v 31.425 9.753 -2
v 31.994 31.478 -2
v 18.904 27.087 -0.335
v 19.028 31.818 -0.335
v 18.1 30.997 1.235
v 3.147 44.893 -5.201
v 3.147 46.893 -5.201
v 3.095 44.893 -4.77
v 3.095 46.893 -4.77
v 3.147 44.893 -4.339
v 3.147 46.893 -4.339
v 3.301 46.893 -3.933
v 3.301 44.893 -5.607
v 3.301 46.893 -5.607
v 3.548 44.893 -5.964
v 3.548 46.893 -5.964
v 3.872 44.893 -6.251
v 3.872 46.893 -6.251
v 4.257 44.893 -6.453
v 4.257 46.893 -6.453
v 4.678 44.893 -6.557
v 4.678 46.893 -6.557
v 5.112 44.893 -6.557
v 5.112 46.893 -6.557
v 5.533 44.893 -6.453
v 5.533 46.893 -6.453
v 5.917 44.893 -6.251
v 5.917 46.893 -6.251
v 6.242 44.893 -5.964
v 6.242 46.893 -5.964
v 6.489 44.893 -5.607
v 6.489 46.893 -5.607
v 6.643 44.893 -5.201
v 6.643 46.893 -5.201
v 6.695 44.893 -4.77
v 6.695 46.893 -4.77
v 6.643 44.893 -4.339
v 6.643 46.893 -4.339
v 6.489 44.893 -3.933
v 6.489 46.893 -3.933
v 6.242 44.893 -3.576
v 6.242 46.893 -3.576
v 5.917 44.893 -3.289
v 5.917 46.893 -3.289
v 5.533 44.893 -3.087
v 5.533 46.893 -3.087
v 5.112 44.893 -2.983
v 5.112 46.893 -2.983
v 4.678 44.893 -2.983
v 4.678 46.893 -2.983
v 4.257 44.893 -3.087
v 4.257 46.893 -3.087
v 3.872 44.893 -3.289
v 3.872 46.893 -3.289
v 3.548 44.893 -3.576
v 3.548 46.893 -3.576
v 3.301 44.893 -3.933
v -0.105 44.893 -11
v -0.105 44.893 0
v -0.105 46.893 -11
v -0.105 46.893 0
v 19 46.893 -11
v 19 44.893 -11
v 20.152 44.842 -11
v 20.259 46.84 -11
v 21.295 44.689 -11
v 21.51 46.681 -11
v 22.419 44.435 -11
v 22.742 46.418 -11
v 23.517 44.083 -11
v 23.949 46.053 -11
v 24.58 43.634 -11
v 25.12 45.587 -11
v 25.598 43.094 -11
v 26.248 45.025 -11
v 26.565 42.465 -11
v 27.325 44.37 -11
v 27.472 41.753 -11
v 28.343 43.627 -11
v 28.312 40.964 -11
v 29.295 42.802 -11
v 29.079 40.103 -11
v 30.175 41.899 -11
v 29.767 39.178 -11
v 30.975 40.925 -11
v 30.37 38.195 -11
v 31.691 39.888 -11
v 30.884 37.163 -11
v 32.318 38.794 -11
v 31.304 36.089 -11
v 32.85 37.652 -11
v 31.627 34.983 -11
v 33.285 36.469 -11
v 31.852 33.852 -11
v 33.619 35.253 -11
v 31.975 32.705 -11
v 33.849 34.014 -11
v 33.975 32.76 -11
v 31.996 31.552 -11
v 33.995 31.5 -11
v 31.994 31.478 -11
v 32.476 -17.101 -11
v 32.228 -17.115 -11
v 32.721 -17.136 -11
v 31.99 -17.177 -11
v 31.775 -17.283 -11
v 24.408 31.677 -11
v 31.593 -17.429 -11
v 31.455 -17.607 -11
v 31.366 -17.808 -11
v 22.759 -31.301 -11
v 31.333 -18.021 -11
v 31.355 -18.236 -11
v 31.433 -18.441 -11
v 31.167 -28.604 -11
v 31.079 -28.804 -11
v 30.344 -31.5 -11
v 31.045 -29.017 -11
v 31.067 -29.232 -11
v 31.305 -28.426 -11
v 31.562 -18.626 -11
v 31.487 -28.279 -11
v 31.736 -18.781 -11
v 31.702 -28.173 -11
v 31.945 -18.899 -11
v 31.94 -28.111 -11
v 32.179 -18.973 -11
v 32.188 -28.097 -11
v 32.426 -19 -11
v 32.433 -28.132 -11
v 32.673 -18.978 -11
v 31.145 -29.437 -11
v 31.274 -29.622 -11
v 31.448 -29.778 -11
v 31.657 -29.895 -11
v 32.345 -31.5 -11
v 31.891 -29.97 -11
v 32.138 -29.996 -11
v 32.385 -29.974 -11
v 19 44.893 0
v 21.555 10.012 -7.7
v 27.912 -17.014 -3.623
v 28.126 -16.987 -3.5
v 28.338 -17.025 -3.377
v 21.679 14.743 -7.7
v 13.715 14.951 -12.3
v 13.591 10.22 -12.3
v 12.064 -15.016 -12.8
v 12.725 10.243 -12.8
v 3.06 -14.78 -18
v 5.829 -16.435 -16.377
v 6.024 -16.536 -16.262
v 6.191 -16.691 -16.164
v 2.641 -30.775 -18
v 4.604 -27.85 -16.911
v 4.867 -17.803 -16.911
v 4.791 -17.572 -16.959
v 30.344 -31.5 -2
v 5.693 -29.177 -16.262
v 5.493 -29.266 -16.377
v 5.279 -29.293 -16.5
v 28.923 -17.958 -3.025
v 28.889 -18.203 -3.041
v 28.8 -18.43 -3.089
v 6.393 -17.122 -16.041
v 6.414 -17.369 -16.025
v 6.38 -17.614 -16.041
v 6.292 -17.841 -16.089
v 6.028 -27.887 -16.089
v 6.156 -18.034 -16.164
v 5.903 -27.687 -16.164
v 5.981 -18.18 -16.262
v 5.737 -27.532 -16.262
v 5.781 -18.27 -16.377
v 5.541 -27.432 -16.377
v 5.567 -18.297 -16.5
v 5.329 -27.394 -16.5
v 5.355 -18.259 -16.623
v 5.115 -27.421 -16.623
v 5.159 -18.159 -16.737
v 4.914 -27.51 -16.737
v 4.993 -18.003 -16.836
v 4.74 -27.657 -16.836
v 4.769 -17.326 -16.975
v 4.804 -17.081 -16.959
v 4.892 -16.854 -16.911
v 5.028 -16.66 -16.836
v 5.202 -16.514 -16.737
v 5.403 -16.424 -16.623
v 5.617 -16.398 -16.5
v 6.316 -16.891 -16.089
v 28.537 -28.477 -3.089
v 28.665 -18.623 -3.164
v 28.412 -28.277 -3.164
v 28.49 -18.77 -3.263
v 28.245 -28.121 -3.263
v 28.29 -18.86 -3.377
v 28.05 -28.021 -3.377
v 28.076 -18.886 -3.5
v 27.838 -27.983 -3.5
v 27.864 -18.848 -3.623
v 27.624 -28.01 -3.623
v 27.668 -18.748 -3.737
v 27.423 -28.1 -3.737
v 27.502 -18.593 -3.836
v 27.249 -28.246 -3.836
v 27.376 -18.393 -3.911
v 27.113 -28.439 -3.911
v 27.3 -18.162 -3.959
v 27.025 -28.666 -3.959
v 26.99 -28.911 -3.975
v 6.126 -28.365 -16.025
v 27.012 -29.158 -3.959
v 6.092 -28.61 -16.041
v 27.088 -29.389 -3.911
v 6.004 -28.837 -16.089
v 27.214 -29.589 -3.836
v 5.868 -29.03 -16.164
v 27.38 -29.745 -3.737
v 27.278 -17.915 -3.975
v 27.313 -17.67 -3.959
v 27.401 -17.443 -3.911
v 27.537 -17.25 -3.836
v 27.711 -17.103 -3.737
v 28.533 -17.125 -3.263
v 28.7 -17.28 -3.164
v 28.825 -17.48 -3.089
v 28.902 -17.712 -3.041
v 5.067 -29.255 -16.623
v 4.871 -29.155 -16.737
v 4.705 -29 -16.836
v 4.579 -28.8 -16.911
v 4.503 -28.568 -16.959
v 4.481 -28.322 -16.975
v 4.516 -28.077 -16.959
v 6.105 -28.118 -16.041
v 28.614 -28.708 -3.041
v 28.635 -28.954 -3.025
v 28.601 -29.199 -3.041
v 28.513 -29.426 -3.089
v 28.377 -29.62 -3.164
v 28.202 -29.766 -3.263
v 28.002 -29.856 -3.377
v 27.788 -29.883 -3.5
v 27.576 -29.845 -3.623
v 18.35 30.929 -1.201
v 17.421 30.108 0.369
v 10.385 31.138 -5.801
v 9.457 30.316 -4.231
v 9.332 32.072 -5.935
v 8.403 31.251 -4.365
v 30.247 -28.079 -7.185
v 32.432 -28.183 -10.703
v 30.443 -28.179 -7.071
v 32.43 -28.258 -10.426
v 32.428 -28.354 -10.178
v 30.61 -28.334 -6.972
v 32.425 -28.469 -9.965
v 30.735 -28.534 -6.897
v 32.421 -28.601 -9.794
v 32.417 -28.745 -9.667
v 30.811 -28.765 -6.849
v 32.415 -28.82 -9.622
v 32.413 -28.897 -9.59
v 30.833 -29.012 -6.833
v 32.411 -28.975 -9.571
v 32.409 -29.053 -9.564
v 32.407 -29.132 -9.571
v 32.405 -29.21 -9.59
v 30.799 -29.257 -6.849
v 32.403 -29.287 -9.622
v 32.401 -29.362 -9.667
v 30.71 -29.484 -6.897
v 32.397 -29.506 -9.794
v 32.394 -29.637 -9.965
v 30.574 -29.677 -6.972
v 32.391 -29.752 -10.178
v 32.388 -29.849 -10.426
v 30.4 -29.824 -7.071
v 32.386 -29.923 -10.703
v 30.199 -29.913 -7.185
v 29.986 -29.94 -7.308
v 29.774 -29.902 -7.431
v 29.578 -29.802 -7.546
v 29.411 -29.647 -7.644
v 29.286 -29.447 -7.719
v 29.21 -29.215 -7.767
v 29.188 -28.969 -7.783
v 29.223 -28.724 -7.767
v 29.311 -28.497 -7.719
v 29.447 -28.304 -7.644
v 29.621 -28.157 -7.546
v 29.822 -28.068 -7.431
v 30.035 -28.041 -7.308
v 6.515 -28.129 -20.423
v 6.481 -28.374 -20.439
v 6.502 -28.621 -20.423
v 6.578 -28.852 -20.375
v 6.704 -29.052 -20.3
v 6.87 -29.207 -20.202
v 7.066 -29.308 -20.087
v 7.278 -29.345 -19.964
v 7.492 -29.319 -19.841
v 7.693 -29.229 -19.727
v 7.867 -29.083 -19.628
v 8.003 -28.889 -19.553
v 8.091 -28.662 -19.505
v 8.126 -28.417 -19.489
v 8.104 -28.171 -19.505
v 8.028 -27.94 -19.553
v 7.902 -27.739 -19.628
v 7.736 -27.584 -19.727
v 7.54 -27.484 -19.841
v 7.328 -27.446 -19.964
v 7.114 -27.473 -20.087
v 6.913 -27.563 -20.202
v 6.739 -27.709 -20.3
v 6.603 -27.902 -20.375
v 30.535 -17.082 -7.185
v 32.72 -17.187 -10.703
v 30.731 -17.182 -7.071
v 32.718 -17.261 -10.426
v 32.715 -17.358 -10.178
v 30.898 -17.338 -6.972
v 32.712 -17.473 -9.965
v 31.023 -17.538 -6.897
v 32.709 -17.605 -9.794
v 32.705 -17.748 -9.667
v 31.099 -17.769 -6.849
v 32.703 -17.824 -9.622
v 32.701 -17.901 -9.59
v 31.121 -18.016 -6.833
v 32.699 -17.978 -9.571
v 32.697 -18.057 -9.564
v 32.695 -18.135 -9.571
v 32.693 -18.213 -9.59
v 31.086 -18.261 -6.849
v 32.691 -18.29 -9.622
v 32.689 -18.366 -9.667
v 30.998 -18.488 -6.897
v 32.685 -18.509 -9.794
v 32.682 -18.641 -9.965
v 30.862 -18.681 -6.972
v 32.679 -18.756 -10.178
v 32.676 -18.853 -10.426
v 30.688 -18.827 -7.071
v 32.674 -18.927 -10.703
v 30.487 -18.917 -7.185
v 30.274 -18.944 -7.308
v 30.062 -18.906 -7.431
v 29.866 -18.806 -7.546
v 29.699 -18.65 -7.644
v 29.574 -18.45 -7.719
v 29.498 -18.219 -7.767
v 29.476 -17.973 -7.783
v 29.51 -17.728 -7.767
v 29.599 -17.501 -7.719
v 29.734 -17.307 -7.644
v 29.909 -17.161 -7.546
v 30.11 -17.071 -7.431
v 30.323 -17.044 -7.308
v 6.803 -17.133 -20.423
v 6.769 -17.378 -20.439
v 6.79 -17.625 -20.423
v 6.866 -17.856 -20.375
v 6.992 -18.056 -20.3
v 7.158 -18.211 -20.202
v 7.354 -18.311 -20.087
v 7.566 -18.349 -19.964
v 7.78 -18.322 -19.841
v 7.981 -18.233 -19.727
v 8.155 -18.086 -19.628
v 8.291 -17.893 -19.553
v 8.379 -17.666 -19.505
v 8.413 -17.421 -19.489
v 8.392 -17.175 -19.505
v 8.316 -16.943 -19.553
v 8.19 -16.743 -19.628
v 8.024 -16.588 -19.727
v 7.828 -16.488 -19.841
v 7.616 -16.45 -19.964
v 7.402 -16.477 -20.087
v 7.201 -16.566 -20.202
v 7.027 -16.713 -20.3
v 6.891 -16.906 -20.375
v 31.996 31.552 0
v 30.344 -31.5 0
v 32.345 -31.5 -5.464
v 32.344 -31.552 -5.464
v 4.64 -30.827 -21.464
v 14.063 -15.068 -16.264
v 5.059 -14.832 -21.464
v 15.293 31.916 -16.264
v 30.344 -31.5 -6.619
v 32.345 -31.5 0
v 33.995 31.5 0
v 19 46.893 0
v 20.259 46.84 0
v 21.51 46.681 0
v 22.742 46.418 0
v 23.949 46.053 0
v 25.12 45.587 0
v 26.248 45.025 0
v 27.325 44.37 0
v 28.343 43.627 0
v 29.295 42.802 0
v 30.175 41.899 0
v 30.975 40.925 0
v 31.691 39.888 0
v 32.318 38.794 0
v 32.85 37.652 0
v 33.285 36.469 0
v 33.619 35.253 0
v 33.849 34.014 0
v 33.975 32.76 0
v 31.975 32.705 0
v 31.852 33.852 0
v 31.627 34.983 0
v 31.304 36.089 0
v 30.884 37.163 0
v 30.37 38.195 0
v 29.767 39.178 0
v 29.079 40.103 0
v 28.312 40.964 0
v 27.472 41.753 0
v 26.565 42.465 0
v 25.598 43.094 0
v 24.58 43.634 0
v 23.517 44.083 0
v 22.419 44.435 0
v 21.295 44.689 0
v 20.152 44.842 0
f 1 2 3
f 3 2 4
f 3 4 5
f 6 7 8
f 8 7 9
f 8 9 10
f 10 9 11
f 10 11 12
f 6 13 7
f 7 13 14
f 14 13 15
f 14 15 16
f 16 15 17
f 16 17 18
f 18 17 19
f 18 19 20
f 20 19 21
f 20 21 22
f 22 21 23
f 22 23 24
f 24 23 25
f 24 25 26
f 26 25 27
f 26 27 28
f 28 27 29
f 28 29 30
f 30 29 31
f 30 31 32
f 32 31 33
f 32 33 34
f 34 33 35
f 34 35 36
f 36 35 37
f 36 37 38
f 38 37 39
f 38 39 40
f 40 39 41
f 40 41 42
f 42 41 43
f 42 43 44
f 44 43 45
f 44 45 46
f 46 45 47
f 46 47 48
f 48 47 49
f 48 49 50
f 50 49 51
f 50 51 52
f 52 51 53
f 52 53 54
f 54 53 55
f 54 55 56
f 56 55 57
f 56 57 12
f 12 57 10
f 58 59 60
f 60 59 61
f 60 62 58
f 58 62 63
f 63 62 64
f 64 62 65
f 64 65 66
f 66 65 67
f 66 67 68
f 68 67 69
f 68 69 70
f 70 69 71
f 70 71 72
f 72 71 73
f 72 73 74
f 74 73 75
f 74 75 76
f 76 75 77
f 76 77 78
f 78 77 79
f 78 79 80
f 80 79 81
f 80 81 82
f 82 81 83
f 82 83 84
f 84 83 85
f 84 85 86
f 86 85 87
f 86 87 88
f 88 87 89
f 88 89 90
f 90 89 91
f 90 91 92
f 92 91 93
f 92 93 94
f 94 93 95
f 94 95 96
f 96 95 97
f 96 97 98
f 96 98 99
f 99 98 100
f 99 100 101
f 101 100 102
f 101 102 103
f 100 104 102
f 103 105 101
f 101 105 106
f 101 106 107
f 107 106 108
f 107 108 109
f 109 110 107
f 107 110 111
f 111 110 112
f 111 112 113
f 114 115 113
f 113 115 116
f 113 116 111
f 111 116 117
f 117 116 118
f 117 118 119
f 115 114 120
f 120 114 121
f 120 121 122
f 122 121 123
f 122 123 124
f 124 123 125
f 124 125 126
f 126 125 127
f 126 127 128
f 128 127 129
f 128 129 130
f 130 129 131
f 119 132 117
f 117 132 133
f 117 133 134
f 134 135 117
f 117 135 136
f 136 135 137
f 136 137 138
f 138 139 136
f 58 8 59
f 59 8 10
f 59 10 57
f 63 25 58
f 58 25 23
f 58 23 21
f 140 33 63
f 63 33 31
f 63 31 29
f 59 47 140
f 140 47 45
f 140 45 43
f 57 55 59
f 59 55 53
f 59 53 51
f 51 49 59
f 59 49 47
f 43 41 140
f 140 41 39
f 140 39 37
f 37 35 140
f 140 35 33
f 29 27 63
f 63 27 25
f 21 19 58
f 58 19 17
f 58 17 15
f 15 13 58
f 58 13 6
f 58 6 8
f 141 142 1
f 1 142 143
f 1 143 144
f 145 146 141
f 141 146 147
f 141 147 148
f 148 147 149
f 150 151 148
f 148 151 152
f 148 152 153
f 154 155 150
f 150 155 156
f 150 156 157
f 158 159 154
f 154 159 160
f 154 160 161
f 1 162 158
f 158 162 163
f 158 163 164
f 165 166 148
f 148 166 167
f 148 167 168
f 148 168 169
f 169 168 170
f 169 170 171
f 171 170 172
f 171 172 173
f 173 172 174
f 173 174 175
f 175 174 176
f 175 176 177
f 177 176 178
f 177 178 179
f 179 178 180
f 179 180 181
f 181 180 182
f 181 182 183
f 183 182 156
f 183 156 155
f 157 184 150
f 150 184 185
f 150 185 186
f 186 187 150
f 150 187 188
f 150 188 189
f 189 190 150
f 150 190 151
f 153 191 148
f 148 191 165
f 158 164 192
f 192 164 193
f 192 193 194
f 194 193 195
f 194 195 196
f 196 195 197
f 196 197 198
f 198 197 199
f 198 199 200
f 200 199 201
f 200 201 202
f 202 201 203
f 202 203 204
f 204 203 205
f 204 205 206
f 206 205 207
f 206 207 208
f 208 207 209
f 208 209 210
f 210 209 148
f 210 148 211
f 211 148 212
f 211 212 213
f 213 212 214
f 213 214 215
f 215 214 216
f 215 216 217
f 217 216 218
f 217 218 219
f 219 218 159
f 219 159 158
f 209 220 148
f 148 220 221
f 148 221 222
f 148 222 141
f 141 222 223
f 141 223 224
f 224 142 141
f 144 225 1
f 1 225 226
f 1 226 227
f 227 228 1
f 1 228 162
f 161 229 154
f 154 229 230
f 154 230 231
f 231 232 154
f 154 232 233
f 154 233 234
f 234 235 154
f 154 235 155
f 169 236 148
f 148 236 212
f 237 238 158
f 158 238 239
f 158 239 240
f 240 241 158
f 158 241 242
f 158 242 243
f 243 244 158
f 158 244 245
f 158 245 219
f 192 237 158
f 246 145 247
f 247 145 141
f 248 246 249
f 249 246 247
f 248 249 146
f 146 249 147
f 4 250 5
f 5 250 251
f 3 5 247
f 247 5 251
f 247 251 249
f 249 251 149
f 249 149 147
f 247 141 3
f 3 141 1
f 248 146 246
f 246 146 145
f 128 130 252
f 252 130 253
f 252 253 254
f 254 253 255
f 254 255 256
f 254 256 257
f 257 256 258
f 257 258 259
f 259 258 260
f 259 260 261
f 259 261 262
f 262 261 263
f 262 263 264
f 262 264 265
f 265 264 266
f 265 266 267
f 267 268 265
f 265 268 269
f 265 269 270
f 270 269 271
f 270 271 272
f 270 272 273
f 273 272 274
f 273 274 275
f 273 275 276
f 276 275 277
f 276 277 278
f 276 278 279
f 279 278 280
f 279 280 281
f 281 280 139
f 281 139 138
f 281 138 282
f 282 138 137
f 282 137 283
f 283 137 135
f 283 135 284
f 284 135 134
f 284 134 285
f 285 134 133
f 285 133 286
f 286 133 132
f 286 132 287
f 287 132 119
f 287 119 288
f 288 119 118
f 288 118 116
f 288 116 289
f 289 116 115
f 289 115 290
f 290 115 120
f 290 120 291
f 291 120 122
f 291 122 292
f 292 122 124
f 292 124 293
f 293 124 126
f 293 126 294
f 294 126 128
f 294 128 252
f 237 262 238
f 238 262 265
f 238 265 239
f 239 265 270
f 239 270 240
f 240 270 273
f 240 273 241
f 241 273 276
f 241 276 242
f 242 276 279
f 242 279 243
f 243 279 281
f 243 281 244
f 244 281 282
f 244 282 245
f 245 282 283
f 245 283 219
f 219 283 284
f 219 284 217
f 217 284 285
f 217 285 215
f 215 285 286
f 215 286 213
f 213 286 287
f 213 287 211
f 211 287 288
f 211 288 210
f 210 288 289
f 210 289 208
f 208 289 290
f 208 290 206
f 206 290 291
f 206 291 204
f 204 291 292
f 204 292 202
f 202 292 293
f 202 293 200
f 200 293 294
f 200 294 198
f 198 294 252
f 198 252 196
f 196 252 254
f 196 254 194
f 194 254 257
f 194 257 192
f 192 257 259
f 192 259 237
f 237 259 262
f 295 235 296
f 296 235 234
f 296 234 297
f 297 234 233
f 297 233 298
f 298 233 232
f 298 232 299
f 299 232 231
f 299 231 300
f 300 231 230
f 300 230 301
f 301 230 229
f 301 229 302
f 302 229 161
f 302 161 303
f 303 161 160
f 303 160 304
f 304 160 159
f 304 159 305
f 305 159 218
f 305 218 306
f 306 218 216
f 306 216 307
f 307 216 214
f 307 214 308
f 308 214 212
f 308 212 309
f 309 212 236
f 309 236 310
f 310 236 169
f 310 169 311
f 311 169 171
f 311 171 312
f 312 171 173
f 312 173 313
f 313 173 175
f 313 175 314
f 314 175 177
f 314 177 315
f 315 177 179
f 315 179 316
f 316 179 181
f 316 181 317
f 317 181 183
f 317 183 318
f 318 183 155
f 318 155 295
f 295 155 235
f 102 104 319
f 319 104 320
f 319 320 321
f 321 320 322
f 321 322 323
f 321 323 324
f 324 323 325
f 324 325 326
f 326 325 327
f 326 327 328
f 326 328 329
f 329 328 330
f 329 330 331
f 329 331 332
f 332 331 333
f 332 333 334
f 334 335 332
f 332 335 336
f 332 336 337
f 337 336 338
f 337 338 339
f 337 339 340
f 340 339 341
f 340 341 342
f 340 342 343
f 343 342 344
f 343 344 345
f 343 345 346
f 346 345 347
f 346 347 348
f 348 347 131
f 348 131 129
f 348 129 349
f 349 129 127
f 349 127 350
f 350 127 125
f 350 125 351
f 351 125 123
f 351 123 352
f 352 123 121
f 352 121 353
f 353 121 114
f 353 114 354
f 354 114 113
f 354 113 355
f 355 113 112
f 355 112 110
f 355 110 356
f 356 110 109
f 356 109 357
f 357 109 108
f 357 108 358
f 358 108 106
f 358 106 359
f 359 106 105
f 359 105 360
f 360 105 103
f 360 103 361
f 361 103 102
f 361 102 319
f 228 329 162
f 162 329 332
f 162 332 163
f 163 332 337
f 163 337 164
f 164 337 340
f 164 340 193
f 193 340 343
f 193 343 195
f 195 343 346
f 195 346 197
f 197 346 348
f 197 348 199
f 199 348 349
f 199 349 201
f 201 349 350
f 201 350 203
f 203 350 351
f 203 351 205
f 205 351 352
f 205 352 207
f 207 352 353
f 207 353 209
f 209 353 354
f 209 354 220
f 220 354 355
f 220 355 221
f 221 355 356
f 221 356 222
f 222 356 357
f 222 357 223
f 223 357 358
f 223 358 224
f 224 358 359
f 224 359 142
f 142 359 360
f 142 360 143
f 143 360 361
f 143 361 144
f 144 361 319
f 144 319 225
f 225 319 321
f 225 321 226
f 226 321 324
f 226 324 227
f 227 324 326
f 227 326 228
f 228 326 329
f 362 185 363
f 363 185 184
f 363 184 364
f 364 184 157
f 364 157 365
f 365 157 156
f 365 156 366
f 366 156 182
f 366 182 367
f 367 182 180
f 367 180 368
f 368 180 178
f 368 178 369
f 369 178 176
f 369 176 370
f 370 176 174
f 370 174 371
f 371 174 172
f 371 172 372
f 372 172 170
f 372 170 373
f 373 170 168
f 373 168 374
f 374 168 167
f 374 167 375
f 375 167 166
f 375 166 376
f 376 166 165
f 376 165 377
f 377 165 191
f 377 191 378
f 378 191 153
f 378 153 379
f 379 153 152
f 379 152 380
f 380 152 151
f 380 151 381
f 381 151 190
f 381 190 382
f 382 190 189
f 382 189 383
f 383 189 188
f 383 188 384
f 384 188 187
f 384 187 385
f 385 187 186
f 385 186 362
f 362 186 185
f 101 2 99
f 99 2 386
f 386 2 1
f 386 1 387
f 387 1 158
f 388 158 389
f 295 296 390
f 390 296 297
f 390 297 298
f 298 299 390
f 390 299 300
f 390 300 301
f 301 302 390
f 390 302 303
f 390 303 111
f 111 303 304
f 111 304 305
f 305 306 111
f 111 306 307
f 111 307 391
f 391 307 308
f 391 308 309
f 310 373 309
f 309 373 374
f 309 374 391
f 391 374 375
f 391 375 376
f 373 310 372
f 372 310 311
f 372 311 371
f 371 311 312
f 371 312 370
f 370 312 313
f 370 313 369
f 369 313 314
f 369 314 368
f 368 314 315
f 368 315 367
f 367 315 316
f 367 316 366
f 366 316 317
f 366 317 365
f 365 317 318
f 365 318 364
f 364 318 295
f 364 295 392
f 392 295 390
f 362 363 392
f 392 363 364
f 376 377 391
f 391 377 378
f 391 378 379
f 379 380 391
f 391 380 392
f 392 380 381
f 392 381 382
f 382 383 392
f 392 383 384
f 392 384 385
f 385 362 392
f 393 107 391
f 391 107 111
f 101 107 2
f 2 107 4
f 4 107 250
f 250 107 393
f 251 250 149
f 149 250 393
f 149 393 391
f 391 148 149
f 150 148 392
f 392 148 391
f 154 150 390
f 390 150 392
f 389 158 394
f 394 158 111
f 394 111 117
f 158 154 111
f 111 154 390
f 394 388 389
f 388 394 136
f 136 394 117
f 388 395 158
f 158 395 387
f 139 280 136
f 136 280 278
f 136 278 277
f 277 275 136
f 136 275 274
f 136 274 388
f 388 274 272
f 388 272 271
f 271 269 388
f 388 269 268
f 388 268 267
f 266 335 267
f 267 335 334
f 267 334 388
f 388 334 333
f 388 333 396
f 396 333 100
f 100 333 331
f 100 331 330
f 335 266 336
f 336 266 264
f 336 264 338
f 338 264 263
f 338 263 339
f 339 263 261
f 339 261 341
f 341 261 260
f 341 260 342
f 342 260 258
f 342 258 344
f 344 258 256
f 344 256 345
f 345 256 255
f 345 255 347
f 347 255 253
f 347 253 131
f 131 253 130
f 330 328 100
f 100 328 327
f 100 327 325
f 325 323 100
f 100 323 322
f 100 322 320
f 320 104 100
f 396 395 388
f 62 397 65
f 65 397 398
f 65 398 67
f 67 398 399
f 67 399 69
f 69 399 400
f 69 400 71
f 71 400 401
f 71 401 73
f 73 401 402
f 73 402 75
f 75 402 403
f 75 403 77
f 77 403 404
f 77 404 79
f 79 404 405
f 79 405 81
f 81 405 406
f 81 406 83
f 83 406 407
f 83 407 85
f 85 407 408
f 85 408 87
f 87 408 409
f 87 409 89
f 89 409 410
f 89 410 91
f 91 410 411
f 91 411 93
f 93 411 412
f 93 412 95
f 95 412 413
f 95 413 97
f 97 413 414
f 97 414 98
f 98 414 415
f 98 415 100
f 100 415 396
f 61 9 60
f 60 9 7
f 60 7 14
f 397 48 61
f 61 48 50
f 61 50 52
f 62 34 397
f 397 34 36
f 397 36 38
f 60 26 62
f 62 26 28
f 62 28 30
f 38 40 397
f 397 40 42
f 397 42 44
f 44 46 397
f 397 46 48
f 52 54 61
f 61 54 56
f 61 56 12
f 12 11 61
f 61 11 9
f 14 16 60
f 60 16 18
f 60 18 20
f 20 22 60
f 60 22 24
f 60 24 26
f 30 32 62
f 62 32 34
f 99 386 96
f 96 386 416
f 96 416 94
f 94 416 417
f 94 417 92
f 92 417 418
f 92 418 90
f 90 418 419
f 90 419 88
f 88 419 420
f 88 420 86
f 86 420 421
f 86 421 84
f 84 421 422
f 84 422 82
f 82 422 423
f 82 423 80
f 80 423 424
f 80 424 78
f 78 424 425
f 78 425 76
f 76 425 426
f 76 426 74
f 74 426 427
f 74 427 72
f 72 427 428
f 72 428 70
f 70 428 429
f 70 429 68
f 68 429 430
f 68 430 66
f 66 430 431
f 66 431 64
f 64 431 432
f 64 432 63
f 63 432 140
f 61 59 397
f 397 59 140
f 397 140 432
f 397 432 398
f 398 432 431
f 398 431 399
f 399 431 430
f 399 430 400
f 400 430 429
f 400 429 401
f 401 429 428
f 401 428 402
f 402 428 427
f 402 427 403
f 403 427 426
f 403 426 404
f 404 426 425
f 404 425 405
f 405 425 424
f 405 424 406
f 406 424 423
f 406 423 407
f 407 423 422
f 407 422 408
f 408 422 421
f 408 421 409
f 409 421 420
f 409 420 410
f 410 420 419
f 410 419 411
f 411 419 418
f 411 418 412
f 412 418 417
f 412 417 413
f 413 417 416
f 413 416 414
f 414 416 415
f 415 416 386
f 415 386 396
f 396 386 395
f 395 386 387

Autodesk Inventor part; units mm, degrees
ref_plane "YZ Plane" through (0, 0, 0) normal (1, 0, 0) x (0, 1, 0)
ref_plane "XZ Plane" through (0, 0, 0) normal (0, 1, 0) x (-1, 0, 0)
sketch "Sketch1" plane through (0, 0, 0) normal (0, 0, 1) x (1, 0, 0)
  line L0 (-19, 46.892654) -> (19, 46.892654)
  line L1 (33.99486, 31.5) -> (32.345147, -31.5)
  arc A0 (33.99486, 31.5) -> (19, 46.892654) centre (19, 31.892654) ccw
  line L2 (-19, 44.892654) -> (19, 44.892654)
  arc A1 (31.995545, 31.552354) -> (19, 44.892654) centre (19, 31.892654) ccw
  line L3 (31.995545, 31.552354) -> (30.344461, -31.5)
  line L4 (-19, 46.892654) -> (-19, 44.892654)
  line L5 (30.344461, -31.5) -> (32.345147, -31.5)
  point P0 (0, 0)
  point P1 (33.170003, 0)
  point P2 (0, 46.892654)
  dimension "d0" = 88.5
  dimension "d1" = 15
  dimension "d2" = 38
  dimension "d3" = 63
  dimension "d4" = 2
extrude "Extrusion1" add sketch "Sketch1" against normal blind 11
sketch "Sketch3" plane through (-19, 44.892654, 0) normal (0, -1, 0) x (1, 0, 0)
  line L0 (0, 0) -> (13, 0)
  line L1 (13, 0) -> (13, -14.7)
  line L2 (13, -14.7) -> (0, -14.7)
  line L3 (0, -14.7) -> (0, 0)
  line L4 (0, 0) -> (38, 0) projected
  line L5 (0, 0) -> (0, -11) projected
  point P0 (19, 0)
  dimension "d7" = 13
  dimension "d8" = 14.7
extrude "Extrusion2" [suppressed]
extrude "Extrusion3" [suppressed]
sketch "Sketch5" plane through (-19, 42.692654, 0) normal (0, -1, 0) x (1, 0, 0)
  line L0 (0, 0) -> (6.5, 0) construction
  line L1 (6.5, 0) -> (6.5, -4.77) construction
  line L2 (6.5, -4.77) -> (0, -4.77) construction
  line L3 (0, -4.77) -> (0, 0) construction
  line L4 (13, 0) -> (0, 0) construction
  line L5 (0, 0) -> (0, -14.7) construction
  circle A0 centre (6.5, -4.77) radius 1.8
  circle A1 centre (6.5, -4.77) radius 3.5
  point P0 (19, 0)
  dimension "d15" = 4.77
  dimension "d16" = 6.5
  dimension "d17" = 3.6
  dimension "d18" = 7
extrude "Extrusion7" [suppressed]
extrude "Extrusion8" [suppressed]
sketch "Sketch7" plane through (-19, 42.692654, 0) normal (-1, 0, 0) x (0, 0, 1)
  line L0 (-6.57, 3) -> (-2.97, 3) projected
  line L1 (-6.57, 5.2) -> (-2.97, 5.2) projected
  line L2 (-6.57, 5.2) -> (-12.7, 5.2)
  line L3 (-12.7, 5.2) -> (-12.7, 1.7)
  line L4 (-12.7, 1.7) -> (-6.57, 1.7)
  line L5 (-6.57, 1.7) -> (-6.57, 5.2)
  line L6 (0, 5.2) -> (-14.7, 5.2) projected
  line L7 (-14.7, 5.2) -> (-14.7, 0) projected
  point P0 (0, -42.692654)
  point P1 (-12.7, 3.45)
  dimension "d31" = 3.5
  dimension "d32" = 2
extrude "Extrusion9" [suppressed]
sketch "Sketch8" plane through (-19, 46.892654, 0) normal (0, 1, 0) x (1, 0, 0)
  line L0 (38, 11) -> (0, 11) projected
  line L1 (13, 11) -> (18, 11)
  line L2 (18, 11) -> (18, 6.57)
  line L3 (18, 6.57) -> (13, 6.57)
  line L4 (13, 6.57) -> (13, 11)
  line L5 (13, 6.57) -> (6.5, 6.57) projected
  point P0 (19, 0)
  dimension "d35" = 5
extrude "Extrusion10" [suppressed]
chamfer "Chamfer1" [suppressed]
sketch "Sketch9" plane through (31.995545, 31.552354, -11) normal (-0.9996573, 0.0261769, 0) x (0, 0, 1)
  line L0 (9, 0) -> (9, -63.073968)
  line L1 (11, -63.073968) -> (0, -63.073968)
  line L2 (11, 0) -> (0, 0)
  line L3 (11, 0) -> (11, -63.073968)
  point P0 (11, -32.379087)
  dimension "d41" = 2
ref_plane "Work Plane1" through (31.995545, 31.552354, -2) normal (-0.4998287, 0.0130885, 0.8660254) x (-0.0261769, -0.9996573, 0)
sketch "Sketch10" plane through (31.995545, 31.552354, -2) normal (-0.4998287, 0.0130885, 0.8660254) x (-0.0261769, -0.9996573, 0)
  line L0 (47.073968, -32) -> (63.073968, -32)
  line L1 (63.073968, -32) -> (63.073968, 0)
  line L2 (63.073968, 0) -> (47.073968, 0)
  line L3 (47.073968, 0) -> (47.073968, -32)
  line L4 (63.073968, 1) -> (63.073968, -4.5)
  line L5 (0, 1) -> (63.073968, 1)
  line L6 (0, 1) -> (0, -4.5)
  line L7 (63.073968, -4.5) -> (0, -4.5)
  line L8 (63.073968, 1) -> (63.073968, -4.5)
  line L9 (0, 0) -> (63.073968, 0)
  line L10 (0.073968, -21.6) -> (47.073968, -21.6)
  line L11 (47.073968, -21.6) -> (47.073968, -10.4)
  line L12 (47.073968, -10.4) -> (0.073968, -10.4)
  line L13 (0.073968, -10.4) -> (0.073968, -21.6)
  point P0 (32.379087, -25.984171)
  point P1 (47.073968, -16)
  point P2 (47.073968, -16)
  point P3 (47.073968, -4.5)
  dimension "d43" = 32
  dimension "d44" = 16
  dimension "d45" = 11.2
  dimension "d46" = 47
extrude "Extrusion11" add sketch "Sketch10" against normal blind 4 contours L3 L7 L1 L0 | L10 L13 L12 L3 | L7 L3 L2 L1
sketch "Sketch12" plane through (23.759029, -15.32207, -10.664102) normal (0.8657286, -0.0226699, 0.5) x (0.4998287, -0.0130885, -0.8660254)
  line L0 (-4, 0) -> (-4, 47)
  line L1 (-4, 0) -> (0, 0)
  line L2 (0, 47) -> (0, 0)
  line L3 (-4, 47) -> (0, 47)
  line L4 (-4, 38.228587) -> (-4, 47)
  point P0 (-21.311369, 14.69488)
extrude "Extrusion13" add sketch "Sketch12" along normal up to surface surface through (33.99486, 31.5, 0) normal (0.9996573, -0.0261769, 0)
sketch "Sketch15" plane through (2.641145, -30.774563, -18) normal (-0.0261769, -0.9996573, 0) x (0.8657286, -0.0226699, 0.5)
  line L0 (29.690599, -4) -> (27.5, -7.794229)
  line L1 (27.5, -7.794229) -> (20.928203, -4)
  line L2 (10.4, -4) -> (29.690599, -4)
  line L3 (21.446961, 8.402201) -> (33, 1.732051)
  line L4 (21.446961, 8.402201) -> (15.946961, -1.124078)
  line L5 (27.5, -7.794229) -> (15.946961, -1.124078)
  line L6 (33, 1.732051) -> (27.5, -7.794229)
  point P0 (6.015829, 17.311369)
extrude "Extrusion16" add sketch "Sketch15" against normal up to surface (63 mm away) contours L0 L1 L2
sketch "Sketch14" plane through (31.995545, 31.552354, -2) normal (-0.4998287, 0.0130885, 0.8660254) x (0.8657286, -0.0226699, 0.5)
  line L0 (-29, -49.573968) -> (-3, -49.573968) construction
  line L1 (-3, -49.573968) -> (-3, -60.573968) construction
  line L2 (-3, -60.573968) -> (-29, -60.573968) construction
  line L3 (-29, -60.573968) -> (-29, -49.573968) construction
  line L4 (-21.6, -0.073968) -> (-21.6, -47.073968) construction
  line L5 (-21.6, -47.073968) -> (-32, -47.073968) construction
  line L6 (-32, -47.073968) -> (-32, -63.073968) construction
  line L7 (-32, -63.073968) -> (0, -63.073968) construction
  line L8 (0, -0.073968) -> (0, -63.073968) construction
  circle A0 centre (-29, -49.573968) radius 0.95
  circle A1 centre (-29, -60.573968) radius 0.95
  circle A2 centre (-3, -60.573968) radius 0.95
  circle A3 centre (-3, -49.573968) radius 0.95
  line L9 (0, -0.073968) -> (-21.6, -0.073968)
  point P0 (-25.984171, -32.379087)
  point P1 (-16, -63.073968)
  point P2 (-16, -60.573968)
  point P3 (-29, -55.073968)
  point P4 (-32, -55.073968)
  dimension "d58" = 26
  dimension "d59" = 11
  dimension "d60" = 1.9
extrude "Extrusion15" cut sketch "Sketch14" against normal blind 20
sketch "Sketch17" plane through (12.063554, -15.015813, -12.8) normal (-0.8657286, 0.0226699, -0.5) x (-0.4998287, 0.0130885, 0.8660254)
  line L0 (0, 47) -> (0, 0)
  line L1 (0, 30) -> (7.92723, 47)
  line L2 (7.92723, 47) -> (0, 47)
  point P0 (17.311369, 14.69488)
  dimension "d67" = 17
  dimension "d68" = 25
extrude "Extrusion17" add sketch "Sketch17" against normal up to surface (11.2 mm away)
sketch "Sketch19" plane through (12.848862, 14.973907, -12.8) normal (-0.4640615, -0.4106113, 0.7848856) x (0.8657286, -0.0226699, 0.5)
  line L0 (11.2, 0) -> (11.2, 18.757425)
  line L1 (0, 18.757425) -> (11.2, 18.757425)
  line L2 (0, 0) -> (0, 18.757425)
  line L3 (11.2, 0) -> (0, 0)
  line L4 (1, 1) -> (1, 17.757425)
  line L5 (1, 17.757425) -> (10.2, 17.757425)
  line L6 (10.2, 17.757425) -> (10.2, 1)
  line L7 (10.2, 1) -> (1, 1)
  line L8 (1, 1) -> (1, 0)
  line L9 (10.2, 1) -> (10.2, 0)
  point P0 (-4.384171, -6.555048)
  dimension "d71" = 1
  dimension "d72" = 9.2
extrude "Extrusion18" add sketch "Sketch19" along normal blind 2 contours L3 L9 L6 L5 L4 L8 L2 L1 L0
sketch "Sketch20" plane through (13.714591, 14.951237, -12.3) normal (0.1875123, -0.9115286, -0.3659982) x (0.8657286, -0.0226699, 0.5)
  line L0 (10.2, 0) -> (9.2, 0) projected
  line L1 (10.2, 0) -> (10.2, 2) projected
  line L2 (9.2, 2) -> (10.2, 2) projected
  line L3 (9.2, 0) -> (9.2, 2) projected
  line L4 (0, 0) -> (-1, 0) projected
  line L5 (0, 0) -> (0, 2) projected
  line L6 (-1, 2) -> (0, 2) projected
  line L7 (-1, 0) -> (-1, 2) projected
  point P0 (-5.384171, 22.157652)
extrude "Extrusion19" add sketch "Sketch20" along normal up to surface surface through (14.907242, 0.281044, -11.389944) normal (-0.4998287, 0.0130885, 0.8660254)
sketch "Sketch21" plane through (-19, 46.892654, 0) normal (0, 1, 0) x (1, 0, 0)
  line L0 (52.99486, 0) -> (52.99486, 11)
  circle A0 centre (23.89486, 4.77) radius 1.8
  line L1 (38, 0) -> (0, 0)
  line L2 (38, 0) -> (0, 0)
  line L3 (38, 0) -> (38, 11)
  line L4 (0, 11) -> (38, 11)
  line L5 (0, 0) -> (0, 11)
  line L6 (18.89486, 0) -> (18.89486, 11)
  point P0 (19, 0)
  dimension "d77" = 29.1
  dimension "d78" = 3.6
  dimension "d79" = 4.77
  dimension "d80" = 5
extrude "Extrusion20" cut sketch "Sketch21" against normal up to surface (2 mm away) contours A0 | L1 L5 L4 L6
sketch "Sketch24" plane through (31.993609, 31.478411, -2) normal (0.0261769, 0.9996573, 0) x (0.9996573, -0.0261769, 0)
  line L0 (-12.970279, -1.665183) -> (-9.006664, 5.2)
  line L1 (-1.775352, 1.025) -> (-3.4208, 1.975)
  line L2 (-1.775352, 1.025) -> (-3.4208, 1.975)
  line L3 (-27.712813, 16) -> (0, 0)
  line L4 (0, 0) -> (-9.006664, 5.2)
  line L5 (0, 0) -> (-12.970279, -1.665183)
  line L6 (-9.87269, 5.7) -> (-17.840123, 10.3)
  line L7 (-12.970279, -1.665183) -> (-13.876587, -3.234954)
  line L8 (-13.876587, -3.234954) -> (-9.006664, 5.2)
  line L9 (-17.840123, 10.3) -> (-18.706149, 10.8)
  line L10 (-9.006664, 5.2) -> (-9.87269, 5.7)
  line L11 (-18.706149, 10.8) -> (-27.712813, 16)
  point P0 (-31.158637, -2)
  point P1 (-21.487547, 18.030192)
  point P2 (-22.943031, 19.251489)
  point P3 (-21.487547, 18.030192)
  point P4 (-22.943031, 19.251489)
  point P5 (0, 0)
  point P6 (-1.775352, 1.025)
  point P7 (-3.4208, 1.975)
  point P8 (-9.006664, 5.2)
extrude "Extrusion22" add sketch "Sketch24" against normal up to surface surface through (15.010195, 22.574698, -4.997638) normal (-0.4640615, -0.4106113, 0.7848856)
equation "\"d68\" = zangle"
equation "\"yangle\" = 30deg"
equation "\"zangle\" = 25deg"
equation "\"d42\" = yangle"
properties part number "3DOCameraMount_3DPrint"
